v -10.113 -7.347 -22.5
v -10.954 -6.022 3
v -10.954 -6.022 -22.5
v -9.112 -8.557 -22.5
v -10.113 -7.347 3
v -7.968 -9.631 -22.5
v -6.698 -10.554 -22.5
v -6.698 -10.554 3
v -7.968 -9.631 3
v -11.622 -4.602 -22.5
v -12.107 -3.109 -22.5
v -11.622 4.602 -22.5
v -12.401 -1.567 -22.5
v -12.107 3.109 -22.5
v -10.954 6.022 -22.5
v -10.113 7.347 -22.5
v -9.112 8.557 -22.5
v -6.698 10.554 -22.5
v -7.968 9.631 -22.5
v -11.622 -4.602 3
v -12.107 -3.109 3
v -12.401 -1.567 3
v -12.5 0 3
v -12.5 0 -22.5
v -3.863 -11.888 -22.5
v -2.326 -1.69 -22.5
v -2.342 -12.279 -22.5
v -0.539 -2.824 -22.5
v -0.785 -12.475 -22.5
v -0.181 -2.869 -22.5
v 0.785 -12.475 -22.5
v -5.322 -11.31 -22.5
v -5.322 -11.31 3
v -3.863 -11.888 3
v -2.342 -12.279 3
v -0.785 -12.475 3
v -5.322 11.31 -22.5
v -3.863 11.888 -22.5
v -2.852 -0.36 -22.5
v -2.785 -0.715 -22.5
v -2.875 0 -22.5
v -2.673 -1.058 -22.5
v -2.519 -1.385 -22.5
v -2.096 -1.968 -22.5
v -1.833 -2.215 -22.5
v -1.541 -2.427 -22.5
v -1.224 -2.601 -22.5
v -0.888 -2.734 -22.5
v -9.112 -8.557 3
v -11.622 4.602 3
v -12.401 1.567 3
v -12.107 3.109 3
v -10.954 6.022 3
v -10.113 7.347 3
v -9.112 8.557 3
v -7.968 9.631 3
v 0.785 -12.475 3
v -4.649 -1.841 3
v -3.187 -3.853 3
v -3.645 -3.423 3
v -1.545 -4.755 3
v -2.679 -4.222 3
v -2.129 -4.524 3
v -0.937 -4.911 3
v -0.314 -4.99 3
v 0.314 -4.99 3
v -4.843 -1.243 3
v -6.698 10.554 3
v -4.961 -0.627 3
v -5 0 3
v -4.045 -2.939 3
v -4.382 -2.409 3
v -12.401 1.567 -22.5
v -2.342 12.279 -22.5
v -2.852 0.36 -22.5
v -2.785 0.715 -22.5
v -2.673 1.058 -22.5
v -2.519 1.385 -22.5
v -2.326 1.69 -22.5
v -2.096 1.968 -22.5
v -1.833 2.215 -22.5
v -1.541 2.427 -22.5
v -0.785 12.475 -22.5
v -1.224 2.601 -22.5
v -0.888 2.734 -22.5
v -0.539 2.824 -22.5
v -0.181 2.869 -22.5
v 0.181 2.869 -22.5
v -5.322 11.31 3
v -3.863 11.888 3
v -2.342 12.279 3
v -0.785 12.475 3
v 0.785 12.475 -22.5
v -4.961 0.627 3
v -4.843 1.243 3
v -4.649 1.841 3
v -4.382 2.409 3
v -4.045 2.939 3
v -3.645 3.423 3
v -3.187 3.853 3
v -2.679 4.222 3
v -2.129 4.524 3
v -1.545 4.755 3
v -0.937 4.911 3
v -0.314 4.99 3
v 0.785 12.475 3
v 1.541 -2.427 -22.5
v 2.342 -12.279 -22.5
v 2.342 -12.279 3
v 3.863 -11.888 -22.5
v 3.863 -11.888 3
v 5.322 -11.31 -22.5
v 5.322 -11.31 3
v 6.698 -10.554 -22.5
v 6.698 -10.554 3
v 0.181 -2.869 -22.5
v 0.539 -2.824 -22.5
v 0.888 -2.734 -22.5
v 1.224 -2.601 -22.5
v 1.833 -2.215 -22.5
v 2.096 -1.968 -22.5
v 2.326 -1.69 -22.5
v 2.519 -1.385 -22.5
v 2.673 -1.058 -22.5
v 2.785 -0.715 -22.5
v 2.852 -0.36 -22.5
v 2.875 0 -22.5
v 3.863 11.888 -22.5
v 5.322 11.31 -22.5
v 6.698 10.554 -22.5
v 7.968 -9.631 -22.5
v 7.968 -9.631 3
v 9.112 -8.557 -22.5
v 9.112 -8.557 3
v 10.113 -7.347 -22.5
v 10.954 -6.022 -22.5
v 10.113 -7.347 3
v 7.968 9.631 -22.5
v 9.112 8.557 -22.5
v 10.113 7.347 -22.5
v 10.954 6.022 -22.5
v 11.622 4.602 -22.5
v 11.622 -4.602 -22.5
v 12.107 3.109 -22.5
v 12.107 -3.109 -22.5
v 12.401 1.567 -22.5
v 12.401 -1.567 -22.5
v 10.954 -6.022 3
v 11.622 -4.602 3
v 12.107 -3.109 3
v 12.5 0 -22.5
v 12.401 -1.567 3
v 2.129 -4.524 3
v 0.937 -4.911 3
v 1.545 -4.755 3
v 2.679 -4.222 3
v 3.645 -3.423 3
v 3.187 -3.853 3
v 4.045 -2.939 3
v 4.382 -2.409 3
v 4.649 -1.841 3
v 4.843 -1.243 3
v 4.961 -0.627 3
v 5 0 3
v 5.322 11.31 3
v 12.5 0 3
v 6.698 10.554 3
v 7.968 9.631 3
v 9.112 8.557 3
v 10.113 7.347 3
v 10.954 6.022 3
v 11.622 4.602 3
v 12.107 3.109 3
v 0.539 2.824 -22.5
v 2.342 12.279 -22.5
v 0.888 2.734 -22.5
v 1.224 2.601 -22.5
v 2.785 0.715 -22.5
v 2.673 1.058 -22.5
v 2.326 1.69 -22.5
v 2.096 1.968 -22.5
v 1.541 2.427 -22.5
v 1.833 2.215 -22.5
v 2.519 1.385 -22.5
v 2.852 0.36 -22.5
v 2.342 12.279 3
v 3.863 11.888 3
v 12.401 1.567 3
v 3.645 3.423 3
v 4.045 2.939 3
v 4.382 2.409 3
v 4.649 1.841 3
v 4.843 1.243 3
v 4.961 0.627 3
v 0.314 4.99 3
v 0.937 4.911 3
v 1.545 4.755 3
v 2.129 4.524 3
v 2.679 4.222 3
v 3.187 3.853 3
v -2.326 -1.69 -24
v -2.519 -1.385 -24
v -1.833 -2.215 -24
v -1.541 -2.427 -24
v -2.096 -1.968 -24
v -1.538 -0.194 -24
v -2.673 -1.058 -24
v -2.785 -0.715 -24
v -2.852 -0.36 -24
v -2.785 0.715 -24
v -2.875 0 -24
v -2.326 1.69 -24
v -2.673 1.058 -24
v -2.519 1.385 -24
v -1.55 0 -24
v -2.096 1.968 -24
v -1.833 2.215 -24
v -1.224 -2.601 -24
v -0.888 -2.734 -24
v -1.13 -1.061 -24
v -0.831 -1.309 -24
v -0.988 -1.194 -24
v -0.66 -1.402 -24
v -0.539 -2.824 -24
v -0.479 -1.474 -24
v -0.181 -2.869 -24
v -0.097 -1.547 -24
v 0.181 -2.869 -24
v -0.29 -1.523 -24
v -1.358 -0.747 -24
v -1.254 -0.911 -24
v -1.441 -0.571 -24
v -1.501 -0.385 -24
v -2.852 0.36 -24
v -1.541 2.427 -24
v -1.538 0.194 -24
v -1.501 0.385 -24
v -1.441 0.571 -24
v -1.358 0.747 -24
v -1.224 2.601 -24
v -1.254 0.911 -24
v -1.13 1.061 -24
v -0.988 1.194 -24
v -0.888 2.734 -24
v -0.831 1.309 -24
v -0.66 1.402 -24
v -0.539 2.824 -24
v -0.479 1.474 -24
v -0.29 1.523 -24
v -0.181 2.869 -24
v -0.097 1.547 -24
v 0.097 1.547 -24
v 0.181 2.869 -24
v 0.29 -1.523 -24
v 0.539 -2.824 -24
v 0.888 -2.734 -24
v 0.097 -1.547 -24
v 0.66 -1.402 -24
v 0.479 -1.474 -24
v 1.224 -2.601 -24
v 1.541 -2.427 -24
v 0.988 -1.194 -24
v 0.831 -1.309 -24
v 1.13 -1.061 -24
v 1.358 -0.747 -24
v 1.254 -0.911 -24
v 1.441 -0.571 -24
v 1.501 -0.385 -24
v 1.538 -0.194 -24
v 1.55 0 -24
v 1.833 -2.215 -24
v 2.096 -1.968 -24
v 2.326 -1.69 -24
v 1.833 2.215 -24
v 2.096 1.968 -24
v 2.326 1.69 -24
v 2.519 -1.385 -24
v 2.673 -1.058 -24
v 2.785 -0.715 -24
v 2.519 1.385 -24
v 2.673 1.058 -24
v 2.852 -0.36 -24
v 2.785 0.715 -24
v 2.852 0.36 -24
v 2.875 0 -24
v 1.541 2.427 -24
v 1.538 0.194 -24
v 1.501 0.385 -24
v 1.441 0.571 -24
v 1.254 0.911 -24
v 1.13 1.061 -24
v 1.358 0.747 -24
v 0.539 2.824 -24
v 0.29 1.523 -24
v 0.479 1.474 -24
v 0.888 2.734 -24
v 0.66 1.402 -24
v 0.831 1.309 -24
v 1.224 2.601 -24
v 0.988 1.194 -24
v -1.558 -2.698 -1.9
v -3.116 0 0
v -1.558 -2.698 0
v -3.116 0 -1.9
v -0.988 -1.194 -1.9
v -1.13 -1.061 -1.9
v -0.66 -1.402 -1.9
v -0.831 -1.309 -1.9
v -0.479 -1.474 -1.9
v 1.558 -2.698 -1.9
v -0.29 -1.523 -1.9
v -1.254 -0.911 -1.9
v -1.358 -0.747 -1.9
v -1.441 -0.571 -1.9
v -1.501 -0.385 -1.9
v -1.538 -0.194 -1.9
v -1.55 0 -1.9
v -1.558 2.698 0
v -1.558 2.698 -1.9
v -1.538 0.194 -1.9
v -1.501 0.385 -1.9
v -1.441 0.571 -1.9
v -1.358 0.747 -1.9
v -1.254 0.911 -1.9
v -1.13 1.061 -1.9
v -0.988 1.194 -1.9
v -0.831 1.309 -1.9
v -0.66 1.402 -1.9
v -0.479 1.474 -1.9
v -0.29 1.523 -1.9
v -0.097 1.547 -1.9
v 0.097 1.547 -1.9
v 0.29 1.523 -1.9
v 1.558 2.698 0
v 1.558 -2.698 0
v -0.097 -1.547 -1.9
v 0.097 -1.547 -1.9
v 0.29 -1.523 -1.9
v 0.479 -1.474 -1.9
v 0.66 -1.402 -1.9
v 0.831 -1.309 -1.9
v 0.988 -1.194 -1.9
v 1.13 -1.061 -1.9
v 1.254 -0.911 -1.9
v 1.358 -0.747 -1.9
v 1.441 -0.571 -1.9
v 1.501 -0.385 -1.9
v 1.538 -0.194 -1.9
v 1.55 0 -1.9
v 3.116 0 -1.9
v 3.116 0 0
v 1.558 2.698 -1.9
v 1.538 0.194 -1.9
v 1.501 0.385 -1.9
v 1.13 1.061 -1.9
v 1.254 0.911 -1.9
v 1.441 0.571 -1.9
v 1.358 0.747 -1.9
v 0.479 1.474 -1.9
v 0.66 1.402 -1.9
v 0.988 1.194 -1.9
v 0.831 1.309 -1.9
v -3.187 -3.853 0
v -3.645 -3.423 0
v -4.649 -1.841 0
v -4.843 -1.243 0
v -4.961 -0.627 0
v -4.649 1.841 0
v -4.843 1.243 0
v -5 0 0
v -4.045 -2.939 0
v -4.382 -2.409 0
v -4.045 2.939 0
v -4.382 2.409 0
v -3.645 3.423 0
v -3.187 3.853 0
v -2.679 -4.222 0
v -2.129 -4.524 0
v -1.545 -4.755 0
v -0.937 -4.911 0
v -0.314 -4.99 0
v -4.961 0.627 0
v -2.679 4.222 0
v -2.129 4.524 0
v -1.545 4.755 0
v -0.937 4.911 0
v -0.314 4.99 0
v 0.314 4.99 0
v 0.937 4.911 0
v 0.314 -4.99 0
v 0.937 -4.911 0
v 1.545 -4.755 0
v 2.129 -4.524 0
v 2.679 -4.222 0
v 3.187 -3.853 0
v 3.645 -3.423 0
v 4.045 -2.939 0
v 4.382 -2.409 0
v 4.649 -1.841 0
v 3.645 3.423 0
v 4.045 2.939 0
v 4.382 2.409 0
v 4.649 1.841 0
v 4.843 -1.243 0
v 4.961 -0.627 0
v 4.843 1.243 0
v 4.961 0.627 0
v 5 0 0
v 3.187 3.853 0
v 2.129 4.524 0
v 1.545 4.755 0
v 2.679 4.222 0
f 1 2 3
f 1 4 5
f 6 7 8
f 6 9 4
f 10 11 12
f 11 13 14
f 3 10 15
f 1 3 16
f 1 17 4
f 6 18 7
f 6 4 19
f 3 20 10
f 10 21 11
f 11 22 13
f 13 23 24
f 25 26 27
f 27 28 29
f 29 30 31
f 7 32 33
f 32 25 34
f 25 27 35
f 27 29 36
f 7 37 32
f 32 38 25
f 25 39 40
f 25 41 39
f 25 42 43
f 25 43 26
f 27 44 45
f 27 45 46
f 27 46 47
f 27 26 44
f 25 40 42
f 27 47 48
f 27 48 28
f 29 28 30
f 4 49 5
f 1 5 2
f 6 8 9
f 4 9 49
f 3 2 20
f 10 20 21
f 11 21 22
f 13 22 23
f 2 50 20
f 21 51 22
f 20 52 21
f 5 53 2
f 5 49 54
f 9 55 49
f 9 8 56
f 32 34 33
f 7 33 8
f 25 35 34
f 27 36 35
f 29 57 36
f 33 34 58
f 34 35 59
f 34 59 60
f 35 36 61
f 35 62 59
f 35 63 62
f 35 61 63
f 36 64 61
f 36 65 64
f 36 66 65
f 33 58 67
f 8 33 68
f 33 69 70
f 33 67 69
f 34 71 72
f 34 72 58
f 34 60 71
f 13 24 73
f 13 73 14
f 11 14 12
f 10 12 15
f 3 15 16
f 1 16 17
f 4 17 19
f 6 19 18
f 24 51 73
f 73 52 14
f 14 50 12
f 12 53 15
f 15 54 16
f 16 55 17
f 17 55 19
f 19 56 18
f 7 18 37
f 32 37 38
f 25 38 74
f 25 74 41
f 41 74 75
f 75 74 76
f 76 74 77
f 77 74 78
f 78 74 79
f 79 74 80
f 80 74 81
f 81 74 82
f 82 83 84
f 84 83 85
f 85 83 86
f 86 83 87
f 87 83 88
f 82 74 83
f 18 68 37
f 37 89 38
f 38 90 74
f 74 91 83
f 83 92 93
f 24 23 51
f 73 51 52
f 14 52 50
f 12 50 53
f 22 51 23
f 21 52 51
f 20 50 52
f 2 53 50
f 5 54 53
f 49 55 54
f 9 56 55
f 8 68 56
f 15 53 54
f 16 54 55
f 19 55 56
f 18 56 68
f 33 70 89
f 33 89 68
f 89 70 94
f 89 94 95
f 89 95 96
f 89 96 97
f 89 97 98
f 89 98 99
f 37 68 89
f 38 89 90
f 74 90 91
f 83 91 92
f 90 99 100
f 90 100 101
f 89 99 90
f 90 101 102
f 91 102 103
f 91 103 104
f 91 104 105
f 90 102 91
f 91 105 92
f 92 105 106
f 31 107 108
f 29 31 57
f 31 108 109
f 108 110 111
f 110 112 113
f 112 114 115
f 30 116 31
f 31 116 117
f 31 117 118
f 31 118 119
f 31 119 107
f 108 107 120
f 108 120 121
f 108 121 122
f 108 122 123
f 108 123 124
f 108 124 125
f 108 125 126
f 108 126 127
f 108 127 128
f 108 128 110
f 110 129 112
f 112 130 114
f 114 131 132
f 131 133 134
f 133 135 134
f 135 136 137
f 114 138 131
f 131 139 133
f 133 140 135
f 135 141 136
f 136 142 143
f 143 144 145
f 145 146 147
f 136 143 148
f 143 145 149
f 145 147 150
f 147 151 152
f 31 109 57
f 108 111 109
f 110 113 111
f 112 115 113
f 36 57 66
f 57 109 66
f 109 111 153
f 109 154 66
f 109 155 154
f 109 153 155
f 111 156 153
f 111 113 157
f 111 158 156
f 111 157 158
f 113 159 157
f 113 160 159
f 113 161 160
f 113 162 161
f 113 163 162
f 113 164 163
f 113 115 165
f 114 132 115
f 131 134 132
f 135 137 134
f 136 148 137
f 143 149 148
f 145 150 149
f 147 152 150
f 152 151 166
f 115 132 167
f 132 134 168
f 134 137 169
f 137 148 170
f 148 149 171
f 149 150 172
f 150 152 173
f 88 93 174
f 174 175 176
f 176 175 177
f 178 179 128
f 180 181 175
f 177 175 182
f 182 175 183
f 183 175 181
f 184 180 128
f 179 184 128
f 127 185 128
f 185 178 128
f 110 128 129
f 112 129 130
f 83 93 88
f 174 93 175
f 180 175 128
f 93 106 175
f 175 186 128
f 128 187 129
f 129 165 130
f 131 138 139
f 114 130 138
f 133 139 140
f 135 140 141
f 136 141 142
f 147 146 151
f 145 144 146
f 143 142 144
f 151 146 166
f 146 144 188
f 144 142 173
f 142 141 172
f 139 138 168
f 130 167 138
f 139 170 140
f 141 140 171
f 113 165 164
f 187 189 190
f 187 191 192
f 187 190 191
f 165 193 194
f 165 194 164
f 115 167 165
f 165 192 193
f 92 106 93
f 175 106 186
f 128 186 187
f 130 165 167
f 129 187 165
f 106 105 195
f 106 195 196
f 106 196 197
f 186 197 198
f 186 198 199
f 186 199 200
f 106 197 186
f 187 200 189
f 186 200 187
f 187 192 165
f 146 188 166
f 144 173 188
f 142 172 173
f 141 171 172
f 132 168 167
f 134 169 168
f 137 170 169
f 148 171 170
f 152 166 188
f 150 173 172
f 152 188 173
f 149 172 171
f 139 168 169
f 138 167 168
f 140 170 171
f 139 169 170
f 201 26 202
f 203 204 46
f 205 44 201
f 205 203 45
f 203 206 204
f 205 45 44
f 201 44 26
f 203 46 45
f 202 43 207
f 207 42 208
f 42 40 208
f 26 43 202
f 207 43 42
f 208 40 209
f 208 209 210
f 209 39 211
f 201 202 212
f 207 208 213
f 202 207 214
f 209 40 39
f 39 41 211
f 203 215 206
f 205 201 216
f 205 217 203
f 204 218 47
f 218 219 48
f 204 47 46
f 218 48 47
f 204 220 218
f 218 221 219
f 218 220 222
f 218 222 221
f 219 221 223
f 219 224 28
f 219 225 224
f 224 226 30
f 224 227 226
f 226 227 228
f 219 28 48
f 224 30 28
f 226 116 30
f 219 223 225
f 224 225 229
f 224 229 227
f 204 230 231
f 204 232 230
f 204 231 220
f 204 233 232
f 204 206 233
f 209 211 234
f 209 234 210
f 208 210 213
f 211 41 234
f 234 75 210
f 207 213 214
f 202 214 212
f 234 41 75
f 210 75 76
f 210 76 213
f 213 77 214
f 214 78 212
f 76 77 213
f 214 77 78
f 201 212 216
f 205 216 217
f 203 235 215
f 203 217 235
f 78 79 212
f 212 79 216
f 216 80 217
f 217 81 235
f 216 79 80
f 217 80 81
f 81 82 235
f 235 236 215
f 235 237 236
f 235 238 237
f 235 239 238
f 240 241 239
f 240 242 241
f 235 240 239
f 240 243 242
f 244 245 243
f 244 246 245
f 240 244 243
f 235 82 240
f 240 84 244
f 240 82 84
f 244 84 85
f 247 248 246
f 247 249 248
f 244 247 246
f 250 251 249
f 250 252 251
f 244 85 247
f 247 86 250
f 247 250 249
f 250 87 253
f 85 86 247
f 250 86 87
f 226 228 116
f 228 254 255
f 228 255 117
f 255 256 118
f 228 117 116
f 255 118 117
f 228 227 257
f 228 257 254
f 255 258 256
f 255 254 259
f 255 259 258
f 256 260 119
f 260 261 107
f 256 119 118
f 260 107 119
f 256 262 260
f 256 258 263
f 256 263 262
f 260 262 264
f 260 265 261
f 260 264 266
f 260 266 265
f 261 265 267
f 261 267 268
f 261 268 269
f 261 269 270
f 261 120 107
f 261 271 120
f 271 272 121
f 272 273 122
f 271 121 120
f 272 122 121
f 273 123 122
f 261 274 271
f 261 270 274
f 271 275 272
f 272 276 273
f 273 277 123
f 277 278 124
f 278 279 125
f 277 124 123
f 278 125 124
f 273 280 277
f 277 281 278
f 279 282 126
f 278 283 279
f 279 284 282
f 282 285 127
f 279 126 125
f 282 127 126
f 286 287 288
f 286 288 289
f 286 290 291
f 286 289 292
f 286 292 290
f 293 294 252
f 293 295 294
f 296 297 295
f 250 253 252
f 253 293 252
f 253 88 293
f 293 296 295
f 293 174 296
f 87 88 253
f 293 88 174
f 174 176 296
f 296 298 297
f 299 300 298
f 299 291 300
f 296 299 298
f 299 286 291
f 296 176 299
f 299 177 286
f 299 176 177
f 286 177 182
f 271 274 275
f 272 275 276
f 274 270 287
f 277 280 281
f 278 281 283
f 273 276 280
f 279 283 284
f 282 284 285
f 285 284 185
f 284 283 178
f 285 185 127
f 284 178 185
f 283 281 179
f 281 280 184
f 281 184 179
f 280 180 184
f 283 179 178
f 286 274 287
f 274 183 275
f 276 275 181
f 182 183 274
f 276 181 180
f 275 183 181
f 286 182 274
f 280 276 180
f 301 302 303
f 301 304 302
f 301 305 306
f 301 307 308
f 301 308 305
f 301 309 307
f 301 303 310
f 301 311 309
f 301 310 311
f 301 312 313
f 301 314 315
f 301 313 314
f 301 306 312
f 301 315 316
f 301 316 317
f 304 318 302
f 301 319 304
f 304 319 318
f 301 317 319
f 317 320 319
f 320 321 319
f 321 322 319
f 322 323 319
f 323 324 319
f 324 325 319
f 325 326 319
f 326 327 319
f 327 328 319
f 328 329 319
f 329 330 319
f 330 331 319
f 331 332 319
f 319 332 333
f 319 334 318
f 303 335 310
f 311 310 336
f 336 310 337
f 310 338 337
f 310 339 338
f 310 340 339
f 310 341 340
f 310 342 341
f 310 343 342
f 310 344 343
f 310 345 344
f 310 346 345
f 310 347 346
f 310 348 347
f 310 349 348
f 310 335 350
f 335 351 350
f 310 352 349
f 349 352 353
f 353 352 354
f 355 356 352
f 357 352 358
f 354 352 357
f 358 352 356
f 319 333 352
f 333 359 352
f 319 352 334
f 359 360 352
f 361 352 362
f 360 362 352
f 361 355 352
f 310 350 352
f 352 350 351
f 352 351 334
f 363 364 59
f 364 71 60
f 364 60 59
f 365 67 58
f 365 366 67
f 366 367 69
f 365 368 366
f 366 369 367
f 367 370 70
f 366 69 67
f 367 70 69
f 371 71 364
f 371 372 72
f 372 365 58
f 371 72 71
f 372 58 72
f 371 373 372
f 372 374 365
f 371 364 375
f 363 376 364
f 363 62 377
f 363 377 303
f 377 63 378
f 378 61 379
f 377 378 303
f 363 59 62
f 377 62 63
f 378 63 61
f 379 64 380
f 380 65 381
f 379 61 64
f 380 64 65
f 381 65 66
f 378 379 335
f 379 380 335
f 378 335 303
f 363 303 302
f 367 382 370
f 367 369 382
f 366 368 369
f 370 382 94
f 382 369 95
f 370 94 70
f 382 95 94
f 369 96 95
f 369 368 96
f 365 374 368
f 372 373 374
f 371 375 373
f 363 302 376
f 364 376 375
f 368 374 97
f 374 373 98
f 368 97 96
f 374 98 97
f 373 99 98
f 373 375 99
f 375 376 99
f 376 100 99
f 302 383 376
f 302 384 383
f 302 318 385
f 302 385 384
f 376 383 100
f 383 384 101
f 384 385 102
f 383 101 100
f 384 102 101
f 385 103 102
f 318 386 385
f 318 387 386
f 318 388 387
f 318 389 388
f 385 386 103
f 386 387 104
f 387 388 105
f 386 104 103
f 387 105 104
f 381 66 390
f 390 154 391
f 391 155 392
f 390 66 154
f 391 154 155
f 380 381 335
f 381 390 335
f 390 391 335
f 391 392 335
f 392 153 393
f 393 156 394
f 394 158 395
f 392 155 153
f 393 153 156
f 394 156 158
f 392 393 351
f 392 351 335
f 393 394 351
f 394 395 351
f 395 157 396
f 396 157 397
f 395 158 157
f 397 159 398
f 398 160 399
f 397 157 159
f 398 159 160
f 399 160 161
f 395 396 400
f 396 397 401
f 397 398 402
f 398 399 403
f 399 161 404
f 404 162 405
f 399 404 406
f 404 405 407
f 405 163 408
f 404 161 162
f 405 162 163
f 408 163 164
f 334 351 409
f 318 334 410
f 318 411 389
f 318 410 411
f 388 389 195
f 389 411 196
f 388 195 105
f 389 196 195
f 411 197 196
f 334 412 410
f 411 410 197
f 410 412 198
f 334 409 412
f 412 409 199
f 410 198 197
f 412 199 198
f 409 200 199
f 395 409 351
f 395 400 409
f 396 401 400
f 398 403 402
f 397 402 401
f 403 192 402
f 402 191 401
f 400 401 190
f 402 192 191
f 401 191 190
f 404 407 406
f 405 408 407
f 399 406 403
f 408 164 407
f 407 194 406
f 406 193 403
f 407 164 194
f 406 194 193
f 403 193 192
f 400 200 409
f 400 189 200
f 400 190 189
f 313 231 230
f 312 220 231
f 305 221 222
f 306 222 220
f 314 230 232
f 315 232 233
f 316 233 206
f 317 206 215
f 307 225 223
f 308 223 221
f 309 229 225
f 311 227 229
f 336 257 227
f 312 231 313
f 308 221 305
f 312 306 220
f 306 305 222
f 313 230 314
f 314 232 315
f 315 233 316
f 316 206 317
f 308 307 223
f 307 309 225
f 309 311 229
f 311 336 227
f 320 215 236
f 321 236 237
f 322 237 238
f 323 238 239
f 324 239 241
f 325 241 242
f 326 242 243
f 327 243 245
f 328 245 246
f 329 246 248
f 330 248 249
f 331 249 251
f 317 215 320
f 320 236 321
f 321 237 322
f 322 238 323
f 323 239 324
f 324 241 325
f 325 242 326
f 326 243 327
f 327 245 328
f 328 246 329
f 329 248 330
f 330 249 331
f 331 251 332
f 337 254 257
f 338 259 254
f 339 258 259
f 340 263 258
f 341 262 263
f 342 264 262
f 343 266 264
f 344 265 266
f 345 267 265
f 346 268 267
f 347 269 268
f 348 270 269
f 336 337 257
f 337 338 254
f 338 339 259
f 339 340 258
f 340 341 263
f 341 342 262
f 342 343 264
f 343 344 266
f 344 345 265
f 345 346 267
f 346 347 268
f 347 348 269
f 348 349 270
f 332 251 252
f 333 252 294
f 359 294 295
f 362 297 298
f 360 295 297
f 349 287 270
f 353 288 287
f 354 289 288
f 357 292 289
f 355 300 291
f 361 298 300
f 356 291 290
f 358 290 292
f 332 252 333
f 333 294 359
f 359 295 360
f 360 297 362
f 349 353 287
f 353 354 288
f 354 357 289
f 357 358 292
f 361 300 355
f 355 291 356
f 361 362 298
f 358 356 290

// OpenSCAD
$fn = 50;


difference() {
	union() {
		translate(v = [0, 0, -22.5000000000]) {
			cylinder(h = 25.5000000000, r = 12.5000000000);
		}
		#translate(v = [0, 0, -24.0000000000]) {
			cylinder(h = 24, r = 2.8750000000);
		}
	}
	union() {
		translate(v = [0, 0, 0]) {
			rotate(a = [0, 0, 0]) {
				difference() {
					union() {
						translate(v = [0, 0, -1.9000000000]) {
							linear_extrude(height = 1.9000000000) {
								polygon(points = [[3.1158000000, 0.0000000000], [1.5579000000, 2.6983619531], [-1.5579000000, 2.6983619531], [-3.1158000000, 0.0000000000], [-1.5579000000, -2.6983619531], [1.5579000000, -2.6983619531]]);
							}
						}
					}
					union();
				}
			}
		}
		#cylinder(h = 3, r = 5.0000000000);
		#translate(v = [0, 0, -100.0000000000]) {
			cylinder(h = 200, r = 1.5500000000);
		}
	}
}
